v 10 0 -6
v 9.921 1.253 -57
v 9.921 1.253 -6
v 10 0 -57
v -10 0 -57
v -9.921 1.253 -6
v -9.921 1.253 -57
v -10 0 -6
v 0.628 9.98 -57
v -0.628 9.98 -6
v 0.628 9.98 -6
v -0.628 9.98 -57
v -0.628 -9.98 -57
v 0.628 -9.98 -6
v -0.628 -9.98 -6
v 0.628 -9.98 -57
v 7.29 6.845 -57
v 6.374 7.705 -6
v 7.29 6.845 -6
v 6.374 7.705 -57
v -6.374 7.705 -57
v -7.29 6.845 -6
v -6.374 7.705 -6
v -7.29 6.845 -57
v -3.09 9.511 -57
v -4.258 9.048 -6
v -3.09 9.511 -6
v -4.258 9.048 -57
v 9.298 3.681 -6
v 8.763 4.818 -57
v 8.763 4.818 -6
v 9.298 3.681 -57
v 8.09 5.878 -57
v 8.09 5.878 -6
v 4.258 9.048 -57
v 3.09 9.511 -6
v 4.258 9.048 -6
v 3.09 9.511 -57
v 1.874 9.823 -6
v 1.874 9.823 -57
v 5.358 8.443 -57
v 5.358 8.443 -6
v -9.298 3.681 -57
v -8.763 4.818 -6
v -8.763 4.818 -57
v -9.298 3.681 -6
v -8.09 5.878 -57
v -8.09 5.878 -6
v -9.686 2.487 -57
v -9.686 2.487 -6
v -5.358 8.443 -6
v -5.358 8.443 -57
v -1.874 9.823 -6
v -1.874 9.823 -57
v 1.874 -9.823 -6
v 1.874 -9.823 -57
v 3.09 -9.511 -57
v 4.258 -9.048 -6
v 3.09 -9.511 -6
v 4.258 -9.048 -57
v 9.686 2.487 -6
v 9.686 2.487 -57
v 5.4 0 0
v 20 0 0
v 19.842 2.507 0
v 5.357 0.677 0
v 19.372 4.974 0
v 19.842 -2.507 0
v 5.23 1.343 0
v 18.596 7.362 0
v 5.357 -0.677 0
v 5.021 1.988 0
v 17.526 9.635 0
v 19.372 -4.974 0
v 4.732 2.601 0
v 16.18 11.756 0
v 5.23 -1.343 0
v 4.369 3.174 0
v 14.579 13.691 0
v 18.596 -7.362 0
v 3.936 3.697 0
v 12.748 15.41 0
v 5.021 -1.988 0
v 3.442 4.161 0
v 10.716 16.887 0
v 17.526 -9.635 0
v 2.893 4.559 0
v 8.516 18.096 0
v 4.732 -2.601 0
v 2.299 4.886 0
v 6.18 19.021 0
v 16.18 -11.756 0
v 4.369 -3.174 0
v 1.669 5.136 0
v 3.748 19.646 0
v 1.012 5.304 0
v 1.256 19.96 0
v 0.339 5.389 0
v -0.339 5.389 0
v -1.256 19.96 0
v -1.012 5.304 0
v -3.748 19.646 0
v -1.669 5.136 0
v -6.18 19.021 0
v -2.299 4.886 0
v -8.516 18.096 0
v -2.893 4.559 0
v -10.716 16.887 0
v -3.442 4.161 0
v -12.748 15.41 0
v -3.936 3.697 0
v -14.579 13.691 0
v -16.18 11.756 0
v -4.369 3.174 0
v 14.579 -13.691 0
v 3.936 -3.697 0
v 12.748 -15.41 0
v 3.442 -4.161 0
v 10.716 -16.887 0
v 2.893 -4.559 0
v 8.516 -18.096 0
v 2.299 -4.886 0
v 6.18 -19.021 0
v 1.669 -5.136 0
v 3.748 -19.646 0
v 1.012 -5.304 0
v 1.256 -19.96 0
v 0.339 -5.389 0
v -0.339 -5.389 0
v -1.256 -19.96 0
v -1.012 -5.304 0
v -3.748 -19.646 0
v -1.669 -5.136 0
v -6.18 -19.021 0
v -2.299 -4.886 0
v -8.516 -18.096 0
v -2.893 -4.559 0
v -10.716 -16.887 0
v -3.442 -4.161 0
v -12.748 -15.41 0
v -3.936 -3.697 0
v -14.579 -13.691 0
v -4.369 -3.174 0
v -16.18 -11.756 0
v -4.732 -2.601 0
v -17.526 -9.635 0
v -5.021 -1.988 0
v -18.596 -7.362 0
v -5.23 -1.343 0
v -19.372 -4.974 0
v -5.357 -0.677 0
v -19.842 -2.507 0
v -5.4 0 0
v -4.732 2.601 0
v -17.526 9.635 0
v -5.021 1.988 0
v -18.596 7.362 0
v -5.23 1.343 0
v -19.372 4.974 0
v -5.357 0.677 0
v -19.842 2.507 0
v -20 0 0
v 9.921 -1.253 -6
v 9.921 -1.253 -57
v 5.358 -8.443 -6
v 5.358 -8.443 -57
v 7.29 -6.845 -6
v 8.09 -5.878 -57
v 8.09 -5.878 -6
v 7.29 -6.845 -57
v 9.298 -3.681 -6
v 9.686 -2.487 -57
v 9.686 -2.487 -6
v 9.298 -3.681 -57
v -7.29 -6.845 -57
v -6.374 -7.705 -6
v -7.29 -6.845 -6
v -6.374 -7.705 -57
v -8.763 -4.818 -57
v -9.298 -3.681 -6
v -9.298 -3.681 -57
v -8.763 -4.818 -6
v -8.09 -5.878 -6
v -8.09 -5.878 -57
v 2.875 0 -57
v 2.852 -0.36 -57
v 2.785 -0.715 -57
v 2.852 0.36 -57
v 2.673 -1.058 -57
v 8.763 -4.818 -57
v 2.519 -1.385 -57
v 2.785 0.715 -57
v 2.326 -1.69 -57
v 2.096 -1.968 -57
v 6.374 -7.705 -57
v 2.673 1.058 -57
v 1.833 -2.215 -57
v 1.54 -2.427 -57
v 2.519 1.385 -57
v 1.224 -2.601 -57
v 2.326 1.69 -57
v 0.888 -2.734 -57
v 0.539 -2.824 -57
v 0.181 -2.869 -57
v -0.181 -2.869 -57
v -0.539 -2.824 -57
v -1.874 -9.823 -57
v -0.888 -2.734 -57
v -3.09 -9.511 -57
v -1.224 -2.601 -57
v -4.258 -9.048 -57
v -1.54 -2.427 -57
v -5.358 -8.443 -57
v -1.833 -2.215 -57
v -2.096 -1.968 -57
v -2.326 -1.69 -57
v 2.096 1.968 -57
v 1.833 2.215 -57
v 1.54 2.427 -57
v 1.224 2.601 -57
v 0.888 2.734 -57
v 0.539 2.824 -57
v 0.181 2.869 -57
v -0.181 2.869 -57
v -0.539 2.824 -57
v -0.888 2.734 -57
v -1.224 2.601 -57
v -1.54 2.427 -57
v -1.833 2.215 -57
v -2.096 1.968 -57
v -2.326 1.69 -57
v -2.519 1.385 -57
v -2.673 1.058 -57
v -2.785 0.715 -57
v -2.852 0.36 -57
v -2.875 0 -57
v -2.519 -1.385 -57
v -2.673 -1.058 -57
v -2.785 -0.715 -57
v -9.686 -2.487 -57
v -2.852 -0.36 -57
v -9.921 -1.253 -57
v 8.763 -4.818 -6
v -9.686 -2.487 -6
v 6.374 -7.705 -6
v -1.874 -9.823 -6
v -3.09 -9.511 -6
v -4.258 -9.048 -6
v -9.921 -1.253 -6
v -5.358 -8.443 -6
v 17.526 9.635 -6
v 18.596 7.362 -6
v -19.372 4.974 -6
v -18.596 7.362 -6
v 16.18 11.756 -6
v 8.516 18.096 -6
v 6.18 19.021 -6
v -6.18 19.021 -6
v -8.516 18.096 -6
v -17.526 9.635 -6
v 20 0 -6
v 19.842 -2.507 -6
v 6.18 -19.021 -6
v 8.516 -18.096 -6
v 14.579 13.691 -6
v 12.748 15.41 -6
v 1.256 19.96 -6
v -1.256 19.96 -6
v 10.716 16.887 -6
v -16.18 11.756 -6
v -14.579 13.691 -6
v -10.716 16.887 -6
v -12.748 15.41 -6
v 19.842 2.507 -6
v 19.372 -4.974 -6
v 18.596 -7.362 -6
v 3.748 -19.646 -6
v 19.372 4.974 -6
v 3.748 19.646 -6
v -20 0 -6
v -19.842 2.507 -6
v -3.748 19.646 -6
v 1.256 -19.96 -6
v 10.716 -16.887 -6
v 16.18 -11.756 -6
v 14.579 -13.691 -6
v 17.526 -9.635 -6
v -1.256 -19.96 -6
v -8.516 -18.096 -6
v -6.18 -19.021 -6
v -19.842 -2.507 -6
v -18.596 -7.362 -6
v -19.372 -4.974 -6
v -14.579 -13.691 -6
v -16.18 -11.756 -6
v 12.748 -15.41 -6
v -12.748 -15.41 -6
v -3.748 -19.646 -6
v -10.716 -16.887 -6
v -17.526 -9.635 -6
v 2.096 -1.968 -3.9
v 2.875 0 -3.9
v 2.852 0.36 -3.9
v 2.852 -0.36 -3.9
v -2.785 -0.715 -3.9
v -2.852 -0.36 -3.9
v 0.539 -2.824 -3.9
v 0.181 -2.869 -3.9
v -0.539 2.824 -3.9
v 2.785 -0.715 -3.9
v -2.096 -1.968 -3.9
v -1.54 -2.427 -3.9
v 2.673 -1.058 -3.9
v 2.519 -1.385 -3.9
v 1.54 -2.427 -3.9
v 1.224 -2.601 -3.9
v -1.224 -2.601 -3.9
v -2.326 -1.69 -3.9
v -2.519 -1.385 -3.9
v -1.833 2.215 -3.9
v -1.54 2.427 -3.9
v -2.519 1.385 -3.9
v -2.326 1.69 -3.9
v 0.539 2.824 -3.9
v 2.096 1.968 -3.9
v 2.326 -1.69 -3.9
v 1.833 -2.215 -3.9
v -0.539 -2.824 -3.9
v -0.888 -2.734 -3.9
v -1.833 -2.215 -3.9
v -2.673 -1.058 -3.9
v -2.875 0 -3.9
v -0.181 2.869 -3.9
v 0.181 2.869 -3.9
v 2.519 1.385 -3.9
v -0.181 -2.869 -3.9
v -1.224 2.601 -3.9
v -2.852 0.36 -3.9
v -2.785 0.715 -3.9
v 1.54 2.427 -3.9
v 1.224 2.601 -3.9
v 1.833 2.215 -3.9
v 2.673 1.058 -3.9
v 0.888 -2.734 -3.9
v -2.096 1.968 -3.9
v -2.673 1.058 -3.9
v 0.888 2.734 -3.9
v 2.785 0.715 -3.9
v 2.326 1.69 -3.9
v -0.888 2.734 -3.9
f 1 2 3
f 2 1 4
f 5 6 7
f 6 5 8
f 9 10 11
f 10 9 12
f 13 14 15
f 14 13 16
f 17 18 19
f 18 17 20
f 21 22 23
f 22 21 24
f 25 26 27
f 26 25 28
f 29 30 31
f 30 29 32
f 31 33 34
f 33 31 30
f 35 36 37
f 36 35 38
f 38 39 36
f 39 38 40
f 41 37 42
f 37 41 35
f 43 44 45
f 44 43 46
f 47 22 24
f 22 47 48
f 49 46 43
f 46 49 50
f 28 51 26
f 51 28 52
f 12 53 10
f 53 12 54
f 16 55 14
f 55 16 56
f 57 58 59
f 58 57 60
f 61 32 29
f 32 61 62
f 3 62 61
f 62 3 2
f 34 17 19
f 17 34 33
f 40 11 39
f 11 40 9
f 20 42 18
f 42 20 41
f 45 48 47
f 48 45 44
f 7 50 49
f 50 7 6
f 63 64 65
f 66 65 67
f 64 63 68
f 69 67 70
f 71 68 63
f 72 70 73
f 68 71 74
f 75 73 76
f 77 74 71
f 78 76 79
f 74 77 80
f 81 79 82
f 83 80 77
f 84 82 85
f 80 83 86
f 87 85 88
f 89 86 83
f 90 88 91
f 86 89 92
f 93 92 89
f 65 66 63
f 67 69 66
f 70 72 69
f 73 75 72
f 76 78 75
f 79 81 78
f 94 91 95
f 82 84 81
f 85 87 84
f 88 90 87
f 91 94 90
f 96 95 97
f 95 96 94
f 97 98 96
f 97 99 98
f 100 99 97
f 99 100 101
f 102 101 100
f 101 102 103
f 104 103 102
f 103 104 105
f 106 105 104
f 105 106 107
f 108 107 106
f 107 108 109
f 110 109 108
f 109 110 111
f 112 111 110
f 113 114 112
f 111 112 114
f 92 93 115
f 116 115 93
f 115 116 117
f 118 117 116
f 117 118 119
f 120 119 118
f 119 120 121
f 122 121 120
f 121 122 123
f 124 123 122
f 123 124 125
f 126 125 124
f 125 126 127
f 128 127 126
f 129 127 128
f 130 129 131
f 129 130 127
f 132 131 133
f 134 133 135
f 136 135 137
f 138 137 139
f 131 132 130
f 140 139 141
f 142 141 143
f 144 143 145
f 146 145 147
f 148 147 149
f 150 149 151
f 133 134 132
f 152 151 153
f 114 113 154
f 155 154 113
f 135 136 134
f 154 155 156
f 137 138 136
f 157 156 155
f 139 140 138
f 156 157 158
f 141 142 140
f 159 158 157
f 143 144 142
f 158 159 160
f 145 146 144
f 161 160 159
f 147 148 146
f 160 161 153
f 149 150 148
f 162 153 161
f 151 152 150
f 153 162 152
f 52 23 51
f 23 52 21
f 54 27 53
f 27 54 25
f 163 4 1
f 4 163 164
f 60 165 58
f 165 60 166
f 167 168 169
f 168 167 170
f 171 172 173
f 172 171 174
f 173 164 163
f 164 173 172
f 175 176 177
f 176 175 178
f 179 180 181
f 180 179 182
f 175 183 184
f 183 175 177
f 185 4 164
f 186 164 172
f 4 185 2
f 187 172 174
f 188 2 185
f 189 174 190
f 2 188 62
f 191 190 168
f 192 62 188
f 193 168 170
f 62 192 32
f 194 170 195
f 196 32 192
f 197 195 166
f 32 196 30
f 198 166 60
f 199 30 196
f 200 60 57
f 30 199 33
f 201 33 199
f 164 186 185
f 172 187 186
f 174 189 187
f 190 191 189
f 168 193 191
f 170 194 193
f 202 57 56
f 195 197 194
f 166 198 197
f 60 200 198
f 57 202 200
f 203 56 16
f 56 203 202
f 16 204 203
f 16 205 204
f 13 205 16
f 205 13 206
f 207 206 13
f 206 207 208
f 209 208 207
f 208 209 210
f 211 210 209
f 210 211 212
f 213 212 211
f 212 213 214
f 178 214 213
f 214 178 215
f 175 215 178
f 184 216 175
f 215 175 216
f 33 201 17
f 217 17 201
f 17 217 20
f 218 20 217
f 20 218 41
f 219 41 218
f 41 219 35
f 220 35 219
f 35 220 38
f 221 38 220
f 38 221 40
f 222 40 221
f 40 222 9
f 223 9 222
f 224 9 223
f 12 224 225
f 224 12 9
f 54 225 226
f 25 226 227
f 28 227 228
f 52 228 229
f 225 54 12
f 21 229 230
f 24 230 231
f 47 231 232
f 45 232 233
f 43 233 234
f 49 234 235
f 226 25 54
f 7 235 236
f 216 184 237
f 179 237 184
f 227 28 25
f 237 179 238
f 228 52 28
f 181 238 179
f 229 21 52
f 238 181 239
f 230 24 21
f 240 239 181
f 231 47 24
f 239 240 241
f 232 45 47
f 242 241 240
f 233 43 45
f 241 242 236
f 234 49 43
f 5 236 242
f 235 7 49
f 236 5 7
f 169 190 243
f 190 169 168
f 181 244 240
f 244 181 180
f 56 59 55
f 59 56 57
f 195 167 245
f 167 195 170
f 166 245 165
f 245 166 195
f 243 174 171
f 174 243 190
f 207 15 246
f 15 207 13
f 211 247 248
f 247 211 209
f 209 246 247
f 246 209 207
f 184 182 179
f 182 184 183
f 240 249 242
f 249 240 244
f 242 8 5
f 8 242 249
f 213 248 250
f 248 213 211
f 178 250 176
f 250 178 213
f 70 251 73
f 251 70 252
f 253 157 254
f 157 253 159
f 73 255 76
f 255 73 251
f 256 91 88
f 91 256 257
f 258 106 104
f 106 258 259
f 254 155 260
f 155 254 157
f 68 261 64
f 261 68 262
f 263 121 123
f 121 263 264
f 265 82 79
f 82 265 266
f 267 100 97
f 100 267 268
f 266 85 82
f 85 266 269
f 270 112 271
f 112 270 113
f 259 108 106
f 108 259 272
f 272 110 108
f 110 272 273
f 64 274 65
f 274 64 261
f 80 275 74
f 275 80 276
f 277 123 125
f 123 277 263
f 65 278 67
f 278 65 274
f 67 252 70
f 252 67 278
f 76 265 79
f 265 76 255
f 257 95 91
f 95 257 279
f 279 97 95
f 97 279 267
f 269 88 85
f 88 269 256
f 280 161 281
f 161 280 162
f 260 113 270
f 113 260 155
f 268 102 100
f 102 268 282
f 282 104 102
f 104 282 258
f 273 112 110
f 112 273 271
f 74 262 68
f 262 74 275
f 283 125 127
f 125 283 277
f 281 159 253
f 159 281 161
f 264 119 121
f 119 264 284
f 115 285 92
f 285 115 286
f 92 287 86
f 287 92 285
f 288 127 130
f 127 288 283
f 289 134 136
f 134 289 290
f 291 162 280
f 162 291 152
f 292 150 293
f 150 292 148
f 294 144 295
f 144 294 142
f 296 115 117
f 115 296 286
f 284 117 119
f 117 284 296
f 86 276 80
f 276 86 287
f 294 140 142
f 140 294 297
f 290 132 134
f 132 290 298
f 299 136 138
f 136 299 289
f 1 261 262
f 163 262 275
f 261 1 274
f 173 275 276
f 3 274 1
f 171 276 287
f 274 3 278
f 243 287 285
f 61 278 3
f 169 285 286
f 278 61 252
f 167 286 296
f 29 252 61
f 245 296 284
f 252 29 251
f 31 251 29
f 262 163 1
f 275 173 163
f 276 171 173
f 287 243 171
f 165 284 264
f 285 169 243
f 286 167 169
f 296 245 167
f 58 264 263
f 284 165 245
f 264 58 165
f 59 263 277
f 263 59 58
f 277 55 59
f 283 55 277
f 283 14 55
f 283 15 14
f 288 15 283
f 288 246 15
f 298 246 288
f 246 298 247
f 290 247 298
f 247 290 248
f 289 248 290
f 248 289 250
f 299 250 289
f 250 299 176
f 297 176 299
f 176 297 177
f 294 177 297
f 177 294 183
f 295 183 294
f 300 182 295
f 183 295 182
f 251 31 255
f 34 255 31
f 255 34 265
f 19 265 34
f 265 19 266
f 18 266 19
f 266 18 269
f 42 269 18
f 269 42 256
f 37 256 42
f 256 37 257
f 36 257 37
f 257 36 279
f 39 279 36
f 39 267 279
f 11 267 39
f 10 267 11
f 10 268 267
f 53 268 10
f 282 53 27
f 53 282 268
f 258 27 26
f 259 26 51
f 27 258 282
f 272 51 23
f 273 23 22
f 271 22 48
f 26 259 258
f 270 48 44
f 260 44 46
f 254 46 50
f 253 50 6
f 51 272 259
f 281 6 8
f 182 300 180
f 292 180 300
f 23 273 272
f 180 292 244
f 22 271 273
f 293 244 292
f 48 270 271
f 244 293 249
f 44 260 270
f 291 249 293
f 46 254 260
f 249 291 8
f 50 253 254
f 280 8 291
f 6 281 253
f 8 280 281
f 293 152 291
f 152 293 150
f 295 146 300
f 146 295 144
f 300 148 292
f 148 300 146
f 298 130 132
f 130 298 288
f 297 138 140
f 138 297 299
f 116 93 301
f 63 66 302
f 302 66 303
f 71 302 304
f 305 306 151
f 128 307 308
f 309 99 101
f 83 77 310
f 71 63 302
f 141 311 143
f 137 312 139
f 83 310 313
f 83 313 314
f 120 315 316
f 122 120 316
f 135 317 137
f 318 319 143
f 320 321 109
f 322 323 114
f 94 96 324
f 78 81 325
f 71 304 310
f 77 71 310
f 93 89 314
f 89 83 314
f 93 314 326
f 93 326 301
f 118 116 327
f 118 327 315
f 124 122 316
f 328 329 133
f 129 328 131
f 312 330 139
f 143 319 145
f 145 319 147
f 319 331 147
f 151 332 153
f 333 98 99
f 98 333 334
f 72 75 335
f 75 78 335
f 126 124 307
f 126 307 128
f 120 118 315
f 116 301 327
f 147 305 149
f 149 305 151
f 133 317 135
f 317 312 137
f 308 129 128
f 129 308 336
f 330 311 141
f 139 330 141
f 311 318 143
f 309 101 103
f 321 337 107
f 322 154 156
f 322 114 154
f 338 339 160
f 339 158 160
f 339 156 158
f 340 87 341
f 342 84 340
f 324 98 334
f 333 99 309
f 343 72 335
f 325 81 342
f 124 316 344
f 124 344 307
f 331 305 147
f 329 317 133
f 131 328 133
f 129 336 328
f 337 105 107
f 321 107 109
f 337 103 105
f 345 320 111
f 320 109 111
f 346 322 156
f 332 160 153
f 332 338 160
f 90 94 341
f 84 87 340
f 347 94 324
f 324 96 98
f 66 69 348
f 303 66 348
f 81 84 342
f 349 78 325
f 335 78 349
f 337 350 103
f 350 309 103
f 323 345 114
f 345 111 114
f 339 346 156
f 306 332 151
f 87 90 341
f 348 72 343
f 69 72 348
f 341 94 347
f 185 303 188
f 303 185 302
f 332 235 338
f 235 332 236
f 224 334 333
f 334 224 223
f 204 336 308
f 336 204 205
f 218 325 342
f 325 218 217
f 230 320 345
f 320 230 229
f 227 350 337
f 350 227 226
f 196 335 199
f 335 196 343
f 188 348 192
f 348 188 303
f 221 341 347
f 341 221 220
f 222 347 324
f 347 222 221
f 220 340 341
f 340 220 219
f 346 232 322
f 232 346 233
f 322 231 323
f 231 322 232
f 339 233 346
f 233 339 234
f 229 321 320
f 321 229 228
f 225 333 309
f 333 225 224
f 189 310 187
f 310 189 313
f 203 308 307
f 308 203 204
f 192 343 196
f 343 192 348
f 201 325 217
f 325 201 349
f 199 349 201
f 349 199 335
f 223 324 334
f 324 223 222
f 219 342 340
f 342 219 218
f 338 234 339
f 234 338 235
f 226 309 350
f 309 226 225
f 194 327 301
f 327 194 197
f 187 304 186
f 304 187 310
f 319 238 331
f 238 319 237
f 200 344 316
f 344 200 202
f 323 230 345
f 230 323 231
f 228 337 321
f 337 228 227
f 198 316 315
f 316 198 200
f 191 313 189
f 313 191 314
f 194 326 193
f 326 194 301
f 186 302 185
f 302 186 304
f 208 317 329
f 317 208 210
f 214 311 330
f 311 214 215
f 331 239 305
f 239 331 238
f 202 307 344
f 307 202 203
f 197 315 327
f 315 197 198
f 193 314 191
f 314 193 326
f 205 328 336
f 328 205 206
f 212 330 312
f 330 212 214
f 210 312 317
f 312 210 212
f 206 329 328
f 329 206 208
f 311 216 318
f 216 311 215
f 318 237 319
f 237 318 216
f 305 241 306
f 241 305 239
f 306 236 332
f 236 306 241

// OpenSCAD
$fn = 50;


difference() {
	union() {
		translate(v = [0, 0, -57.0000000000]) {
			cylinder(h = 57, r = 10.0000000000);
		}
		translate(v = [0, 0, -6.0000000000]) {
			cylinder(h = 6, r = 20.0000000000);
		}
	}
	union() {
		translate(v = [0, 0, 0]) {
			rotate(a = [0, 0, 0]) {
				difference() {
					union() {
						#translate(v = [0, 0, -57.0000000000]) {
							cylinder(h = 57, r = 2.6000000000);
						}
						#translate(v = [0, 0, -3.9000000000]) {
							cylinder(h = 3.9000000000, r1 = 2.8750000000, r2 = 5.4000000000);
						}
						#translate(v = [0, 0, -57.0000000000]) {
							cylinder(h = 57, r = 2.8750000000);
						}
						#translate(v = [0, 0, -57.0000000000]) {
							cylinder(h = 57, r = 2.6000000000);
						}
					}
					union();
				}
			}
		}
	}
}
